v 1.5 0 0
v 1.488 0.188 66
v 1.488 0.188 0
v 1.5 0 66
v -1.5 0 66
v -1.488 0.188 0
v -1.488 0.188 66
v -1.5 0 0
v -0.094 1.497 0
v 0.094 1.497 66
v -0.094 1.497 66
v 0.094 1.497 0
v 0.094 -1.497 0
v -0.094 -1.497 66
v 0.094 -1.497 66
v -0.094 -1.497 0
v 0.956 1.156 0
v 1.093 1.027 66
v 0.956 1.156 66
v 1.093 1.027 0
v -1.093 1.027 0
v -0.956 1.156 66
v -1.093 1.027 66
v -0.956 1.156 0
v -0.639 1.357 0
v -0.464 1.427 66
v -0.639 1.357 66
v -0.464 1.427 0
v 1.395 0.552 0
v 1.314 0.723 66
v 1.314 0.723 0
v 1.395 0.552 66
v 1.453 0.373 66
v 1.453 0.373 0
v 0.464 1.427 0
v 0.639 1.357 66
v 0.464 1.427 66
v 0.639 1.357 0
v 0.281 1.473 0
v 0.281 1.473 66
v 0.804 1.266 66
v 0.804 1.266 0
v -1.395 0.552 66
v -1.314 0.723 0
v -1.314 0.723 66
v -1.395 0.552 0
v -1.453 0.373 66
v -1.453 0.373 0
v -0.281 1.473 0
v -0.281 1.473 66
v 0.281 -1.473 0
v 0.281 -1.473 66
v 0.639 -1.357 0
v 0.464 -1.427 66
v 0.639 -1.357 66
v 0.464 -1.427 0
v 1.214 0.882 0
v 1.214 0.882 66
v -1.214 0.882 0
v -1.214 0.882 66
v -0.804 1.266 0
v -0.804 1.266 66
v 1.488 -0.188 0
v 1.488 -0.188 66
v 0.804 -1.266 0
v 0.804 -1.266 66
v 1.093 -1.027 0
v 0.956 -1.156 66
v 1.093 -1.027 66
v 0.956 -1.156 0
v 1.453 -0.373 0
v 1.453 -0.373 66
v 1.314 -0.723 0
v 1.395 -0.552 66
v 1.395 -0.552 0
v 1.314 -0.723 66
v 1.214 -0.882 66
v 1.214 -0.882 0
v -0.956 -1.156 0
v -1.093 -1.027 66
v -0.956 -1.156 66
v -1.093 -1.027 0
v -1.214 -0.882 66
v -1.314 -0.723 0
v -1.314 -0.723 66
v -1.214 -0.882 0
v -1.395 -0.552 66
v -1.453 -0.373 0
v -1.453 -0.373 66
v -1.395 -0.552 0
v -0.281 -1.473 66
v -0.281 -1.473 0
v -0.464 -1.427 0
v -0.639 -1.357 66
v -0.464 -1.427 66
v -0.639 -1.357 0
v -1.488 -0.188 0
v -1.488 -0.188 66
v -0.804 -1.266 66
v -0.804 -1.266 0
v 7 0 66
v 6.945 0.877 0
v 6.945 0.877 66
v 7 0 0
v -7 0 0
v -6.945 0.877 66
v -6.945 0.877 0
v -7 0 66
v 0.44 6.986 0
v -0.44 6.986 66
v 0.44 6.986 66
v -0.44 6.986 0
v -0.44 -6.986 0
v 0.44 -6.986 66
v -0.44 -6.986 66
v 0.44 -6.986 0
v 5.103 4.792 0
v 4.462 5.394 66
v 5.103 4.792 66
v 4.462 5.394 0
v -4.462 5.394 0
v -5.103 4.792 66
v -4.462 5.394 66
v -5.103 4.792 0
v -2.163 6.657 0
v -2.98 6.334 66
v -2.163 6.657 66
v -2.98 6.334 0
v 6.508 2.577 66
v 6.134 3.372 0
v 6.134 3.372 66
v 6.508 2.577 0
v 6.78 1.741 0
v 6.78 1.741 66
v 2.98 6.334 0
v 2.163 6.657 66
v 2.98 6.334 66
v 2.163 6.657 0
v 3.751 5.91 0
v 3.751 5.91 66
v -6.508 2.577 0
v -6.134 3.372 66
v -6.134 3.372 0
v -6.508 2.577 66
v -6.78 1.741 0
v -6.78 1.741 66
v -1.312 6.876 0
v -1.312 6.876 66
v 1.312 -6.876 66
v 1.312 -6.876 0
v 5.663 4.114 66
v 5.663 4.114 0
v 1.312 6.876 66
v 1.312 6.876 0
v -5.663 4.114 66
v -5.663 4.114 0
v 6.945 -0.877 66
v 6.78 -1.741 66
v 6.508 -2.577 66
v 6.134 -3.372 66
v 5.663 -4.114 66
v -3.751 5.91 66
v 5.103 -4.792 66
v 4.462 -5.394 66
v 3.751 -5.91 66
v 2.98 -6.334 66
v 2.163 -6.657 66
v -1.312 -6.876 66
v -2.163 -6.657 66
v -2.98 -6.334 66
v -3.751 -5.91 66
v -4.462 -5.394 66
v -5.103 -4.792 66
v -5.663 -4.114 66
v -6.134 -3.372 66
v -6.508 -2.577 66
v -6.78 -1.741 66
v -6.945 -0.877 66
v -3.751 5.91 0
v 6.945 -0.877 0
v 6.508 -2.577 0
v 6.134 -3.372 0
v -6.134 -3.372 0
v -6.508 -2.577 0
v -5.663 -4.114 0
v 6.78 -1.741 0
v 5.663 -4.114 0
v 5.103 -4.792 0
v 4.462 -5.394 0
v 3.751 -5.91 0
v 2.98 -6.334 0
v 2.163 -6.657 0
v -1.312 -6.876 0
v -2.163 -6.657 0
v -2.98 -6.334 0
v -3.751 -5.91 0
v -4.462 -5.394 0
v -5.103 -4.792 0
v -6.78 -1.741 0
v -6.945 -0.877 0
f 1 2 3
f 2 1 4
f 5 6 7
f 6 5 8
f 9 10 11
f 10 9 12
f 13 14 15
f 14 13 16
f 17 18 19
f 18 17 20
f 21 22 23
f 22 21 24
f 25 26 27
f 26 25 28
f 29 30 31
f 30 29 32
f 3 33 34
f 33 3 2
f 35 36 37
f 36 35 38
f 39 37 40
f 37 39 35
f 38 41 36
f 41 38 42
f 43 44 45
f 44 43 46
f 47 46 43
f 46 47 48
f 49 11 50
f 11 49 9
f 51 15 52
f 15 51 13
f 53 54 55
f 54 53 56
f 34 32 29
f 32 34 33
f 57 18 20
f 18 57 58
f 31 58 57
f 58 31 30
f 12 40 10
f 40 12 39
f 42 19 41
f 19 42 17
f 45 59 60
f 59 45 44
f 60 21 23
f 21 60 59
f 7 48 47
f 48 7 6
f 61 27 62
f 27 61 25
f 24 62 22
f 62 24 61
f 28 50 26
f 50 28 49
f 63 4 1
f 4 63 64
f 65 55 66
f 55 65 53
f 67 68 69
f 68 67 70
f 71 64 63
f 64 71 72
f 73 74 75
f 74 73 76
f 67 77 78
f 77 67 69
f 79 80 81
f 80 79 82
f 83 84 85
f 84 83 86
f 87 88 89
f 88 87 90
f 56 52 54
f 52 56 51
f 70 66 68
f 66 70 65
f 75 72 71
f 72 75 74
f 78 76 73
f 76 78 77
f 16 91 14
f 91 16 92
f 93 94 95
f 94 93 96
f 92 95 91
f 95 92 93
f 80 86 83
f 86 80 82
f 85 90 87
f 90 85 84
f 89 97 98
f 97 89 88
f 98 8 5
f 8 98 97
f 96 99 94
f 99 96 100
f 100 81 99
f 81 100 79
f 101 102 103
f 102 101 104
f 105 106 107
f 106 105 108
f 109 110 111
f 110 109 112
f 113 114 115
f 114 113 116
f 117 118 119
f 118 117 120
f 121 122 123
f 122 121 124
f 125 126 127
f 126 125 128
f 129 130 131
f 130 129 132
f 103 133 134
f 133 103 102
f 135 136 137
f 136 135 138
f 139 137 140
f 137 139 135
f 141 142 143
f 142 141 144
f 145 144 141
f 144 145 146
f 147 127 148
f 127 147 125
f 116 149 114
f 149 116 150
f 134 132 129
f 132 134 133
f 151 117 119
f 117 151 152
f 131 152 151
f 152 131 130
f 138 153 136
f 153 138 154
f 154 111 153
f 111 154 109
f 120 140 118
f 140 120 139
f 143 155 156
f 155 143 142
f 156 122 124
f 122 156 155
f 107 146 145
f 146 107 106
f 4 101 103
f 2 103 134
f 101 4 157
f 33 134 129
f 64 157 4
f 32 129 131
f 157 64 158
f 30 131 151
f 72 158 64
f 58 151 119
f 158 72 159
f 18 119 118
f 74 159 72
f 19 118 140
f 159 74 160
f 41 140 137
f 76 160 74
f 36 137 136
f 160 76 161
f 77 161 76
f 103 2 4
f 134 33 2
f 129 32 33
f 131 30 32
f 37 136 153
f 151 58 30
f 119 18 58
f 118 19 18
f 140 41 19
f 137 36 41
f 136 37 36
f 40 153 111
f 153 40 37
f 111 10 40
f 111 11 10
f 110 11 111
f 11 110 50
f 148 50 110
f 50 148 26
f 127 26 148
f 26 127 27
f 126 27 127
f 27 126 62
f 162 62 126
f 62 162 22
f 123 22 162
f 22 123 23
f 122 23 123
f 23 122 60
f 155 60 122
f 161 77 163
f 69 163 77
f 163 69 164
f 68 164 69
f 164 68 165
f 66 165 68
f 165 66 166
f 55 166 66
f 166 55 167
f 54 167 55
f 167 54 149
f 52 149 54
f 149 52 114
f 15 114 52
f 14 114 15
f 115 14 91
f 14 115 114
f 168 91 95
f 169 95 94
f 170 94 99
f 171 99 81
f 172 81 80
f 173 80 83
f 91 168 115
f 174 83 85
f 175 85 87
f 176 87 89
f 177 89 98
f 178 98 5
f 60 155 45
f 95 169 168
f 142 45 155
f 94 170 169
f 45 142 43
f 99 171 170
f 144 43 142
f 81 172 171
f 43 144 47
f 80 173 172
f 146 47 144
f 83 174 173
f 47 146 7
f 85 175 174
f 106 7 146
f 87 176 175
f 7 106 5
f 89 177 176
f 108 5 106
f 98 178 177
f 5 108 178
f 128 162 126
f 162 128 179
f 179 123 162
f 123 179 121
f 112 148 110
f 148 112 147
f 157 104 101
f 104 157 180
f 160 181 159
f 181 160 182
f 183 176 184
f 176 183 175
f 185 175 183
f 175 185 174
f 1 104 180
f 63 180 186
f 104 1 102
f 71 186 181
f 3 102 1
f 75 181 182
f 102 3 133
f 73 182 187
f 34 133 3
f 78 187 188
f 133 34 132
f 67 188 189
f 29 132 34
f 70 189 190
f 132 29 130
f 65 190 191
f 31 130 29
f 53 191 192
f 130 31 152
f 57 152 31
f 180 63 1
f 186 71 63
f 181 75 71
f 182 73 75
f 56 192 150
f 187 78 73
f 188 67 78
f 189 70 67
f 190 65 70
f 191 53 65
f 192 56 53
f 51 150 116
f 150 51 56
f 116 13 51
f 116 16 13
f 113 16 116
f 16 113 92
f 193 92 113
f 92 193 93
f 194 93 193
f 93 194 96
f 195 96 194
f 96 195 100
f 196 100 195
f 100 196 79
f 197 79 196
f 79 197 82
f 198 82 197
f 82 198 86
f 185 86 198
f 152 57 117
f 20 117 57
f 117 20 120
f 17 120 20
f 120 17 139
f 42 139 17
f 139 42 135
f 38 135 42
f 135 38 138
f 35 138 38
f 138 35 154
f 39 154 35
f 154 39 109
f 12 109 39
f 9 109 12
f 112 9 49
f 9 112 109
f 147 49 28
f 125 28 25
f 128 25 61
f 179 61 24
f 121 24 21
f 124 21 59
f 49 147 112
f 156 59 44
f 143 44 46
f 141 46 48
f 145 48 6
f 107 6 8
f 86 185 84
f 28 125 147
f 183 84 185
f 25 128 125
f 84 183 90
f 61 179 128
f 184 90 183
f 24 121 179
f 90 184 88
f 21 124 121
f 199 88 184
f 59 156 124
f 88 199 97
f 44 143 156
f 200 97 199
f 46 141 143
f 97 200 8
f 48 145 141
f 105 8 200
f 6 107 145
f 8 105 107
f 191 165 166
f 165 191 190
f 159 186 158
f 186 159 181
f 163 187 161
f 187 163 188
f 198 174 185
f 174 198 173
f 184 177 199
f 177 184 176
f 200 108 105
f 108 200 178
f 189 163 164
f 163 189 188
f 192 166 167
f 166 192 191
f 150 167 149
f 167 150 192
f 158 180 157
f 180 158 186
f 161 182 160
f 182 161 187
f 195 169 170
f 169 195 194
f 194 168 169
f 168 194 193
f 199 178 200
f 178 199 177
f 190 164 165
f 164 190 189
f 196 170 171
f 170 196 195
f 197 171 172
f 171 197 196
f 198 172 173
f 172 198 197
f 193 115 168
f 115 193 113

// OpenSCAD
$fn = 50;


difference() {
	union() {
		cylinder(h = 66, r = 7.0000000000);
	}
	union() {
		translate(v = [0, 0, -100]) {
			cylinder(h = 200, r = 1.5000000000);
		}
		translate(v = [0, 0, -100]) {
			cylinder(h = 200, r = 1.5000000000);
		}
	}
}
